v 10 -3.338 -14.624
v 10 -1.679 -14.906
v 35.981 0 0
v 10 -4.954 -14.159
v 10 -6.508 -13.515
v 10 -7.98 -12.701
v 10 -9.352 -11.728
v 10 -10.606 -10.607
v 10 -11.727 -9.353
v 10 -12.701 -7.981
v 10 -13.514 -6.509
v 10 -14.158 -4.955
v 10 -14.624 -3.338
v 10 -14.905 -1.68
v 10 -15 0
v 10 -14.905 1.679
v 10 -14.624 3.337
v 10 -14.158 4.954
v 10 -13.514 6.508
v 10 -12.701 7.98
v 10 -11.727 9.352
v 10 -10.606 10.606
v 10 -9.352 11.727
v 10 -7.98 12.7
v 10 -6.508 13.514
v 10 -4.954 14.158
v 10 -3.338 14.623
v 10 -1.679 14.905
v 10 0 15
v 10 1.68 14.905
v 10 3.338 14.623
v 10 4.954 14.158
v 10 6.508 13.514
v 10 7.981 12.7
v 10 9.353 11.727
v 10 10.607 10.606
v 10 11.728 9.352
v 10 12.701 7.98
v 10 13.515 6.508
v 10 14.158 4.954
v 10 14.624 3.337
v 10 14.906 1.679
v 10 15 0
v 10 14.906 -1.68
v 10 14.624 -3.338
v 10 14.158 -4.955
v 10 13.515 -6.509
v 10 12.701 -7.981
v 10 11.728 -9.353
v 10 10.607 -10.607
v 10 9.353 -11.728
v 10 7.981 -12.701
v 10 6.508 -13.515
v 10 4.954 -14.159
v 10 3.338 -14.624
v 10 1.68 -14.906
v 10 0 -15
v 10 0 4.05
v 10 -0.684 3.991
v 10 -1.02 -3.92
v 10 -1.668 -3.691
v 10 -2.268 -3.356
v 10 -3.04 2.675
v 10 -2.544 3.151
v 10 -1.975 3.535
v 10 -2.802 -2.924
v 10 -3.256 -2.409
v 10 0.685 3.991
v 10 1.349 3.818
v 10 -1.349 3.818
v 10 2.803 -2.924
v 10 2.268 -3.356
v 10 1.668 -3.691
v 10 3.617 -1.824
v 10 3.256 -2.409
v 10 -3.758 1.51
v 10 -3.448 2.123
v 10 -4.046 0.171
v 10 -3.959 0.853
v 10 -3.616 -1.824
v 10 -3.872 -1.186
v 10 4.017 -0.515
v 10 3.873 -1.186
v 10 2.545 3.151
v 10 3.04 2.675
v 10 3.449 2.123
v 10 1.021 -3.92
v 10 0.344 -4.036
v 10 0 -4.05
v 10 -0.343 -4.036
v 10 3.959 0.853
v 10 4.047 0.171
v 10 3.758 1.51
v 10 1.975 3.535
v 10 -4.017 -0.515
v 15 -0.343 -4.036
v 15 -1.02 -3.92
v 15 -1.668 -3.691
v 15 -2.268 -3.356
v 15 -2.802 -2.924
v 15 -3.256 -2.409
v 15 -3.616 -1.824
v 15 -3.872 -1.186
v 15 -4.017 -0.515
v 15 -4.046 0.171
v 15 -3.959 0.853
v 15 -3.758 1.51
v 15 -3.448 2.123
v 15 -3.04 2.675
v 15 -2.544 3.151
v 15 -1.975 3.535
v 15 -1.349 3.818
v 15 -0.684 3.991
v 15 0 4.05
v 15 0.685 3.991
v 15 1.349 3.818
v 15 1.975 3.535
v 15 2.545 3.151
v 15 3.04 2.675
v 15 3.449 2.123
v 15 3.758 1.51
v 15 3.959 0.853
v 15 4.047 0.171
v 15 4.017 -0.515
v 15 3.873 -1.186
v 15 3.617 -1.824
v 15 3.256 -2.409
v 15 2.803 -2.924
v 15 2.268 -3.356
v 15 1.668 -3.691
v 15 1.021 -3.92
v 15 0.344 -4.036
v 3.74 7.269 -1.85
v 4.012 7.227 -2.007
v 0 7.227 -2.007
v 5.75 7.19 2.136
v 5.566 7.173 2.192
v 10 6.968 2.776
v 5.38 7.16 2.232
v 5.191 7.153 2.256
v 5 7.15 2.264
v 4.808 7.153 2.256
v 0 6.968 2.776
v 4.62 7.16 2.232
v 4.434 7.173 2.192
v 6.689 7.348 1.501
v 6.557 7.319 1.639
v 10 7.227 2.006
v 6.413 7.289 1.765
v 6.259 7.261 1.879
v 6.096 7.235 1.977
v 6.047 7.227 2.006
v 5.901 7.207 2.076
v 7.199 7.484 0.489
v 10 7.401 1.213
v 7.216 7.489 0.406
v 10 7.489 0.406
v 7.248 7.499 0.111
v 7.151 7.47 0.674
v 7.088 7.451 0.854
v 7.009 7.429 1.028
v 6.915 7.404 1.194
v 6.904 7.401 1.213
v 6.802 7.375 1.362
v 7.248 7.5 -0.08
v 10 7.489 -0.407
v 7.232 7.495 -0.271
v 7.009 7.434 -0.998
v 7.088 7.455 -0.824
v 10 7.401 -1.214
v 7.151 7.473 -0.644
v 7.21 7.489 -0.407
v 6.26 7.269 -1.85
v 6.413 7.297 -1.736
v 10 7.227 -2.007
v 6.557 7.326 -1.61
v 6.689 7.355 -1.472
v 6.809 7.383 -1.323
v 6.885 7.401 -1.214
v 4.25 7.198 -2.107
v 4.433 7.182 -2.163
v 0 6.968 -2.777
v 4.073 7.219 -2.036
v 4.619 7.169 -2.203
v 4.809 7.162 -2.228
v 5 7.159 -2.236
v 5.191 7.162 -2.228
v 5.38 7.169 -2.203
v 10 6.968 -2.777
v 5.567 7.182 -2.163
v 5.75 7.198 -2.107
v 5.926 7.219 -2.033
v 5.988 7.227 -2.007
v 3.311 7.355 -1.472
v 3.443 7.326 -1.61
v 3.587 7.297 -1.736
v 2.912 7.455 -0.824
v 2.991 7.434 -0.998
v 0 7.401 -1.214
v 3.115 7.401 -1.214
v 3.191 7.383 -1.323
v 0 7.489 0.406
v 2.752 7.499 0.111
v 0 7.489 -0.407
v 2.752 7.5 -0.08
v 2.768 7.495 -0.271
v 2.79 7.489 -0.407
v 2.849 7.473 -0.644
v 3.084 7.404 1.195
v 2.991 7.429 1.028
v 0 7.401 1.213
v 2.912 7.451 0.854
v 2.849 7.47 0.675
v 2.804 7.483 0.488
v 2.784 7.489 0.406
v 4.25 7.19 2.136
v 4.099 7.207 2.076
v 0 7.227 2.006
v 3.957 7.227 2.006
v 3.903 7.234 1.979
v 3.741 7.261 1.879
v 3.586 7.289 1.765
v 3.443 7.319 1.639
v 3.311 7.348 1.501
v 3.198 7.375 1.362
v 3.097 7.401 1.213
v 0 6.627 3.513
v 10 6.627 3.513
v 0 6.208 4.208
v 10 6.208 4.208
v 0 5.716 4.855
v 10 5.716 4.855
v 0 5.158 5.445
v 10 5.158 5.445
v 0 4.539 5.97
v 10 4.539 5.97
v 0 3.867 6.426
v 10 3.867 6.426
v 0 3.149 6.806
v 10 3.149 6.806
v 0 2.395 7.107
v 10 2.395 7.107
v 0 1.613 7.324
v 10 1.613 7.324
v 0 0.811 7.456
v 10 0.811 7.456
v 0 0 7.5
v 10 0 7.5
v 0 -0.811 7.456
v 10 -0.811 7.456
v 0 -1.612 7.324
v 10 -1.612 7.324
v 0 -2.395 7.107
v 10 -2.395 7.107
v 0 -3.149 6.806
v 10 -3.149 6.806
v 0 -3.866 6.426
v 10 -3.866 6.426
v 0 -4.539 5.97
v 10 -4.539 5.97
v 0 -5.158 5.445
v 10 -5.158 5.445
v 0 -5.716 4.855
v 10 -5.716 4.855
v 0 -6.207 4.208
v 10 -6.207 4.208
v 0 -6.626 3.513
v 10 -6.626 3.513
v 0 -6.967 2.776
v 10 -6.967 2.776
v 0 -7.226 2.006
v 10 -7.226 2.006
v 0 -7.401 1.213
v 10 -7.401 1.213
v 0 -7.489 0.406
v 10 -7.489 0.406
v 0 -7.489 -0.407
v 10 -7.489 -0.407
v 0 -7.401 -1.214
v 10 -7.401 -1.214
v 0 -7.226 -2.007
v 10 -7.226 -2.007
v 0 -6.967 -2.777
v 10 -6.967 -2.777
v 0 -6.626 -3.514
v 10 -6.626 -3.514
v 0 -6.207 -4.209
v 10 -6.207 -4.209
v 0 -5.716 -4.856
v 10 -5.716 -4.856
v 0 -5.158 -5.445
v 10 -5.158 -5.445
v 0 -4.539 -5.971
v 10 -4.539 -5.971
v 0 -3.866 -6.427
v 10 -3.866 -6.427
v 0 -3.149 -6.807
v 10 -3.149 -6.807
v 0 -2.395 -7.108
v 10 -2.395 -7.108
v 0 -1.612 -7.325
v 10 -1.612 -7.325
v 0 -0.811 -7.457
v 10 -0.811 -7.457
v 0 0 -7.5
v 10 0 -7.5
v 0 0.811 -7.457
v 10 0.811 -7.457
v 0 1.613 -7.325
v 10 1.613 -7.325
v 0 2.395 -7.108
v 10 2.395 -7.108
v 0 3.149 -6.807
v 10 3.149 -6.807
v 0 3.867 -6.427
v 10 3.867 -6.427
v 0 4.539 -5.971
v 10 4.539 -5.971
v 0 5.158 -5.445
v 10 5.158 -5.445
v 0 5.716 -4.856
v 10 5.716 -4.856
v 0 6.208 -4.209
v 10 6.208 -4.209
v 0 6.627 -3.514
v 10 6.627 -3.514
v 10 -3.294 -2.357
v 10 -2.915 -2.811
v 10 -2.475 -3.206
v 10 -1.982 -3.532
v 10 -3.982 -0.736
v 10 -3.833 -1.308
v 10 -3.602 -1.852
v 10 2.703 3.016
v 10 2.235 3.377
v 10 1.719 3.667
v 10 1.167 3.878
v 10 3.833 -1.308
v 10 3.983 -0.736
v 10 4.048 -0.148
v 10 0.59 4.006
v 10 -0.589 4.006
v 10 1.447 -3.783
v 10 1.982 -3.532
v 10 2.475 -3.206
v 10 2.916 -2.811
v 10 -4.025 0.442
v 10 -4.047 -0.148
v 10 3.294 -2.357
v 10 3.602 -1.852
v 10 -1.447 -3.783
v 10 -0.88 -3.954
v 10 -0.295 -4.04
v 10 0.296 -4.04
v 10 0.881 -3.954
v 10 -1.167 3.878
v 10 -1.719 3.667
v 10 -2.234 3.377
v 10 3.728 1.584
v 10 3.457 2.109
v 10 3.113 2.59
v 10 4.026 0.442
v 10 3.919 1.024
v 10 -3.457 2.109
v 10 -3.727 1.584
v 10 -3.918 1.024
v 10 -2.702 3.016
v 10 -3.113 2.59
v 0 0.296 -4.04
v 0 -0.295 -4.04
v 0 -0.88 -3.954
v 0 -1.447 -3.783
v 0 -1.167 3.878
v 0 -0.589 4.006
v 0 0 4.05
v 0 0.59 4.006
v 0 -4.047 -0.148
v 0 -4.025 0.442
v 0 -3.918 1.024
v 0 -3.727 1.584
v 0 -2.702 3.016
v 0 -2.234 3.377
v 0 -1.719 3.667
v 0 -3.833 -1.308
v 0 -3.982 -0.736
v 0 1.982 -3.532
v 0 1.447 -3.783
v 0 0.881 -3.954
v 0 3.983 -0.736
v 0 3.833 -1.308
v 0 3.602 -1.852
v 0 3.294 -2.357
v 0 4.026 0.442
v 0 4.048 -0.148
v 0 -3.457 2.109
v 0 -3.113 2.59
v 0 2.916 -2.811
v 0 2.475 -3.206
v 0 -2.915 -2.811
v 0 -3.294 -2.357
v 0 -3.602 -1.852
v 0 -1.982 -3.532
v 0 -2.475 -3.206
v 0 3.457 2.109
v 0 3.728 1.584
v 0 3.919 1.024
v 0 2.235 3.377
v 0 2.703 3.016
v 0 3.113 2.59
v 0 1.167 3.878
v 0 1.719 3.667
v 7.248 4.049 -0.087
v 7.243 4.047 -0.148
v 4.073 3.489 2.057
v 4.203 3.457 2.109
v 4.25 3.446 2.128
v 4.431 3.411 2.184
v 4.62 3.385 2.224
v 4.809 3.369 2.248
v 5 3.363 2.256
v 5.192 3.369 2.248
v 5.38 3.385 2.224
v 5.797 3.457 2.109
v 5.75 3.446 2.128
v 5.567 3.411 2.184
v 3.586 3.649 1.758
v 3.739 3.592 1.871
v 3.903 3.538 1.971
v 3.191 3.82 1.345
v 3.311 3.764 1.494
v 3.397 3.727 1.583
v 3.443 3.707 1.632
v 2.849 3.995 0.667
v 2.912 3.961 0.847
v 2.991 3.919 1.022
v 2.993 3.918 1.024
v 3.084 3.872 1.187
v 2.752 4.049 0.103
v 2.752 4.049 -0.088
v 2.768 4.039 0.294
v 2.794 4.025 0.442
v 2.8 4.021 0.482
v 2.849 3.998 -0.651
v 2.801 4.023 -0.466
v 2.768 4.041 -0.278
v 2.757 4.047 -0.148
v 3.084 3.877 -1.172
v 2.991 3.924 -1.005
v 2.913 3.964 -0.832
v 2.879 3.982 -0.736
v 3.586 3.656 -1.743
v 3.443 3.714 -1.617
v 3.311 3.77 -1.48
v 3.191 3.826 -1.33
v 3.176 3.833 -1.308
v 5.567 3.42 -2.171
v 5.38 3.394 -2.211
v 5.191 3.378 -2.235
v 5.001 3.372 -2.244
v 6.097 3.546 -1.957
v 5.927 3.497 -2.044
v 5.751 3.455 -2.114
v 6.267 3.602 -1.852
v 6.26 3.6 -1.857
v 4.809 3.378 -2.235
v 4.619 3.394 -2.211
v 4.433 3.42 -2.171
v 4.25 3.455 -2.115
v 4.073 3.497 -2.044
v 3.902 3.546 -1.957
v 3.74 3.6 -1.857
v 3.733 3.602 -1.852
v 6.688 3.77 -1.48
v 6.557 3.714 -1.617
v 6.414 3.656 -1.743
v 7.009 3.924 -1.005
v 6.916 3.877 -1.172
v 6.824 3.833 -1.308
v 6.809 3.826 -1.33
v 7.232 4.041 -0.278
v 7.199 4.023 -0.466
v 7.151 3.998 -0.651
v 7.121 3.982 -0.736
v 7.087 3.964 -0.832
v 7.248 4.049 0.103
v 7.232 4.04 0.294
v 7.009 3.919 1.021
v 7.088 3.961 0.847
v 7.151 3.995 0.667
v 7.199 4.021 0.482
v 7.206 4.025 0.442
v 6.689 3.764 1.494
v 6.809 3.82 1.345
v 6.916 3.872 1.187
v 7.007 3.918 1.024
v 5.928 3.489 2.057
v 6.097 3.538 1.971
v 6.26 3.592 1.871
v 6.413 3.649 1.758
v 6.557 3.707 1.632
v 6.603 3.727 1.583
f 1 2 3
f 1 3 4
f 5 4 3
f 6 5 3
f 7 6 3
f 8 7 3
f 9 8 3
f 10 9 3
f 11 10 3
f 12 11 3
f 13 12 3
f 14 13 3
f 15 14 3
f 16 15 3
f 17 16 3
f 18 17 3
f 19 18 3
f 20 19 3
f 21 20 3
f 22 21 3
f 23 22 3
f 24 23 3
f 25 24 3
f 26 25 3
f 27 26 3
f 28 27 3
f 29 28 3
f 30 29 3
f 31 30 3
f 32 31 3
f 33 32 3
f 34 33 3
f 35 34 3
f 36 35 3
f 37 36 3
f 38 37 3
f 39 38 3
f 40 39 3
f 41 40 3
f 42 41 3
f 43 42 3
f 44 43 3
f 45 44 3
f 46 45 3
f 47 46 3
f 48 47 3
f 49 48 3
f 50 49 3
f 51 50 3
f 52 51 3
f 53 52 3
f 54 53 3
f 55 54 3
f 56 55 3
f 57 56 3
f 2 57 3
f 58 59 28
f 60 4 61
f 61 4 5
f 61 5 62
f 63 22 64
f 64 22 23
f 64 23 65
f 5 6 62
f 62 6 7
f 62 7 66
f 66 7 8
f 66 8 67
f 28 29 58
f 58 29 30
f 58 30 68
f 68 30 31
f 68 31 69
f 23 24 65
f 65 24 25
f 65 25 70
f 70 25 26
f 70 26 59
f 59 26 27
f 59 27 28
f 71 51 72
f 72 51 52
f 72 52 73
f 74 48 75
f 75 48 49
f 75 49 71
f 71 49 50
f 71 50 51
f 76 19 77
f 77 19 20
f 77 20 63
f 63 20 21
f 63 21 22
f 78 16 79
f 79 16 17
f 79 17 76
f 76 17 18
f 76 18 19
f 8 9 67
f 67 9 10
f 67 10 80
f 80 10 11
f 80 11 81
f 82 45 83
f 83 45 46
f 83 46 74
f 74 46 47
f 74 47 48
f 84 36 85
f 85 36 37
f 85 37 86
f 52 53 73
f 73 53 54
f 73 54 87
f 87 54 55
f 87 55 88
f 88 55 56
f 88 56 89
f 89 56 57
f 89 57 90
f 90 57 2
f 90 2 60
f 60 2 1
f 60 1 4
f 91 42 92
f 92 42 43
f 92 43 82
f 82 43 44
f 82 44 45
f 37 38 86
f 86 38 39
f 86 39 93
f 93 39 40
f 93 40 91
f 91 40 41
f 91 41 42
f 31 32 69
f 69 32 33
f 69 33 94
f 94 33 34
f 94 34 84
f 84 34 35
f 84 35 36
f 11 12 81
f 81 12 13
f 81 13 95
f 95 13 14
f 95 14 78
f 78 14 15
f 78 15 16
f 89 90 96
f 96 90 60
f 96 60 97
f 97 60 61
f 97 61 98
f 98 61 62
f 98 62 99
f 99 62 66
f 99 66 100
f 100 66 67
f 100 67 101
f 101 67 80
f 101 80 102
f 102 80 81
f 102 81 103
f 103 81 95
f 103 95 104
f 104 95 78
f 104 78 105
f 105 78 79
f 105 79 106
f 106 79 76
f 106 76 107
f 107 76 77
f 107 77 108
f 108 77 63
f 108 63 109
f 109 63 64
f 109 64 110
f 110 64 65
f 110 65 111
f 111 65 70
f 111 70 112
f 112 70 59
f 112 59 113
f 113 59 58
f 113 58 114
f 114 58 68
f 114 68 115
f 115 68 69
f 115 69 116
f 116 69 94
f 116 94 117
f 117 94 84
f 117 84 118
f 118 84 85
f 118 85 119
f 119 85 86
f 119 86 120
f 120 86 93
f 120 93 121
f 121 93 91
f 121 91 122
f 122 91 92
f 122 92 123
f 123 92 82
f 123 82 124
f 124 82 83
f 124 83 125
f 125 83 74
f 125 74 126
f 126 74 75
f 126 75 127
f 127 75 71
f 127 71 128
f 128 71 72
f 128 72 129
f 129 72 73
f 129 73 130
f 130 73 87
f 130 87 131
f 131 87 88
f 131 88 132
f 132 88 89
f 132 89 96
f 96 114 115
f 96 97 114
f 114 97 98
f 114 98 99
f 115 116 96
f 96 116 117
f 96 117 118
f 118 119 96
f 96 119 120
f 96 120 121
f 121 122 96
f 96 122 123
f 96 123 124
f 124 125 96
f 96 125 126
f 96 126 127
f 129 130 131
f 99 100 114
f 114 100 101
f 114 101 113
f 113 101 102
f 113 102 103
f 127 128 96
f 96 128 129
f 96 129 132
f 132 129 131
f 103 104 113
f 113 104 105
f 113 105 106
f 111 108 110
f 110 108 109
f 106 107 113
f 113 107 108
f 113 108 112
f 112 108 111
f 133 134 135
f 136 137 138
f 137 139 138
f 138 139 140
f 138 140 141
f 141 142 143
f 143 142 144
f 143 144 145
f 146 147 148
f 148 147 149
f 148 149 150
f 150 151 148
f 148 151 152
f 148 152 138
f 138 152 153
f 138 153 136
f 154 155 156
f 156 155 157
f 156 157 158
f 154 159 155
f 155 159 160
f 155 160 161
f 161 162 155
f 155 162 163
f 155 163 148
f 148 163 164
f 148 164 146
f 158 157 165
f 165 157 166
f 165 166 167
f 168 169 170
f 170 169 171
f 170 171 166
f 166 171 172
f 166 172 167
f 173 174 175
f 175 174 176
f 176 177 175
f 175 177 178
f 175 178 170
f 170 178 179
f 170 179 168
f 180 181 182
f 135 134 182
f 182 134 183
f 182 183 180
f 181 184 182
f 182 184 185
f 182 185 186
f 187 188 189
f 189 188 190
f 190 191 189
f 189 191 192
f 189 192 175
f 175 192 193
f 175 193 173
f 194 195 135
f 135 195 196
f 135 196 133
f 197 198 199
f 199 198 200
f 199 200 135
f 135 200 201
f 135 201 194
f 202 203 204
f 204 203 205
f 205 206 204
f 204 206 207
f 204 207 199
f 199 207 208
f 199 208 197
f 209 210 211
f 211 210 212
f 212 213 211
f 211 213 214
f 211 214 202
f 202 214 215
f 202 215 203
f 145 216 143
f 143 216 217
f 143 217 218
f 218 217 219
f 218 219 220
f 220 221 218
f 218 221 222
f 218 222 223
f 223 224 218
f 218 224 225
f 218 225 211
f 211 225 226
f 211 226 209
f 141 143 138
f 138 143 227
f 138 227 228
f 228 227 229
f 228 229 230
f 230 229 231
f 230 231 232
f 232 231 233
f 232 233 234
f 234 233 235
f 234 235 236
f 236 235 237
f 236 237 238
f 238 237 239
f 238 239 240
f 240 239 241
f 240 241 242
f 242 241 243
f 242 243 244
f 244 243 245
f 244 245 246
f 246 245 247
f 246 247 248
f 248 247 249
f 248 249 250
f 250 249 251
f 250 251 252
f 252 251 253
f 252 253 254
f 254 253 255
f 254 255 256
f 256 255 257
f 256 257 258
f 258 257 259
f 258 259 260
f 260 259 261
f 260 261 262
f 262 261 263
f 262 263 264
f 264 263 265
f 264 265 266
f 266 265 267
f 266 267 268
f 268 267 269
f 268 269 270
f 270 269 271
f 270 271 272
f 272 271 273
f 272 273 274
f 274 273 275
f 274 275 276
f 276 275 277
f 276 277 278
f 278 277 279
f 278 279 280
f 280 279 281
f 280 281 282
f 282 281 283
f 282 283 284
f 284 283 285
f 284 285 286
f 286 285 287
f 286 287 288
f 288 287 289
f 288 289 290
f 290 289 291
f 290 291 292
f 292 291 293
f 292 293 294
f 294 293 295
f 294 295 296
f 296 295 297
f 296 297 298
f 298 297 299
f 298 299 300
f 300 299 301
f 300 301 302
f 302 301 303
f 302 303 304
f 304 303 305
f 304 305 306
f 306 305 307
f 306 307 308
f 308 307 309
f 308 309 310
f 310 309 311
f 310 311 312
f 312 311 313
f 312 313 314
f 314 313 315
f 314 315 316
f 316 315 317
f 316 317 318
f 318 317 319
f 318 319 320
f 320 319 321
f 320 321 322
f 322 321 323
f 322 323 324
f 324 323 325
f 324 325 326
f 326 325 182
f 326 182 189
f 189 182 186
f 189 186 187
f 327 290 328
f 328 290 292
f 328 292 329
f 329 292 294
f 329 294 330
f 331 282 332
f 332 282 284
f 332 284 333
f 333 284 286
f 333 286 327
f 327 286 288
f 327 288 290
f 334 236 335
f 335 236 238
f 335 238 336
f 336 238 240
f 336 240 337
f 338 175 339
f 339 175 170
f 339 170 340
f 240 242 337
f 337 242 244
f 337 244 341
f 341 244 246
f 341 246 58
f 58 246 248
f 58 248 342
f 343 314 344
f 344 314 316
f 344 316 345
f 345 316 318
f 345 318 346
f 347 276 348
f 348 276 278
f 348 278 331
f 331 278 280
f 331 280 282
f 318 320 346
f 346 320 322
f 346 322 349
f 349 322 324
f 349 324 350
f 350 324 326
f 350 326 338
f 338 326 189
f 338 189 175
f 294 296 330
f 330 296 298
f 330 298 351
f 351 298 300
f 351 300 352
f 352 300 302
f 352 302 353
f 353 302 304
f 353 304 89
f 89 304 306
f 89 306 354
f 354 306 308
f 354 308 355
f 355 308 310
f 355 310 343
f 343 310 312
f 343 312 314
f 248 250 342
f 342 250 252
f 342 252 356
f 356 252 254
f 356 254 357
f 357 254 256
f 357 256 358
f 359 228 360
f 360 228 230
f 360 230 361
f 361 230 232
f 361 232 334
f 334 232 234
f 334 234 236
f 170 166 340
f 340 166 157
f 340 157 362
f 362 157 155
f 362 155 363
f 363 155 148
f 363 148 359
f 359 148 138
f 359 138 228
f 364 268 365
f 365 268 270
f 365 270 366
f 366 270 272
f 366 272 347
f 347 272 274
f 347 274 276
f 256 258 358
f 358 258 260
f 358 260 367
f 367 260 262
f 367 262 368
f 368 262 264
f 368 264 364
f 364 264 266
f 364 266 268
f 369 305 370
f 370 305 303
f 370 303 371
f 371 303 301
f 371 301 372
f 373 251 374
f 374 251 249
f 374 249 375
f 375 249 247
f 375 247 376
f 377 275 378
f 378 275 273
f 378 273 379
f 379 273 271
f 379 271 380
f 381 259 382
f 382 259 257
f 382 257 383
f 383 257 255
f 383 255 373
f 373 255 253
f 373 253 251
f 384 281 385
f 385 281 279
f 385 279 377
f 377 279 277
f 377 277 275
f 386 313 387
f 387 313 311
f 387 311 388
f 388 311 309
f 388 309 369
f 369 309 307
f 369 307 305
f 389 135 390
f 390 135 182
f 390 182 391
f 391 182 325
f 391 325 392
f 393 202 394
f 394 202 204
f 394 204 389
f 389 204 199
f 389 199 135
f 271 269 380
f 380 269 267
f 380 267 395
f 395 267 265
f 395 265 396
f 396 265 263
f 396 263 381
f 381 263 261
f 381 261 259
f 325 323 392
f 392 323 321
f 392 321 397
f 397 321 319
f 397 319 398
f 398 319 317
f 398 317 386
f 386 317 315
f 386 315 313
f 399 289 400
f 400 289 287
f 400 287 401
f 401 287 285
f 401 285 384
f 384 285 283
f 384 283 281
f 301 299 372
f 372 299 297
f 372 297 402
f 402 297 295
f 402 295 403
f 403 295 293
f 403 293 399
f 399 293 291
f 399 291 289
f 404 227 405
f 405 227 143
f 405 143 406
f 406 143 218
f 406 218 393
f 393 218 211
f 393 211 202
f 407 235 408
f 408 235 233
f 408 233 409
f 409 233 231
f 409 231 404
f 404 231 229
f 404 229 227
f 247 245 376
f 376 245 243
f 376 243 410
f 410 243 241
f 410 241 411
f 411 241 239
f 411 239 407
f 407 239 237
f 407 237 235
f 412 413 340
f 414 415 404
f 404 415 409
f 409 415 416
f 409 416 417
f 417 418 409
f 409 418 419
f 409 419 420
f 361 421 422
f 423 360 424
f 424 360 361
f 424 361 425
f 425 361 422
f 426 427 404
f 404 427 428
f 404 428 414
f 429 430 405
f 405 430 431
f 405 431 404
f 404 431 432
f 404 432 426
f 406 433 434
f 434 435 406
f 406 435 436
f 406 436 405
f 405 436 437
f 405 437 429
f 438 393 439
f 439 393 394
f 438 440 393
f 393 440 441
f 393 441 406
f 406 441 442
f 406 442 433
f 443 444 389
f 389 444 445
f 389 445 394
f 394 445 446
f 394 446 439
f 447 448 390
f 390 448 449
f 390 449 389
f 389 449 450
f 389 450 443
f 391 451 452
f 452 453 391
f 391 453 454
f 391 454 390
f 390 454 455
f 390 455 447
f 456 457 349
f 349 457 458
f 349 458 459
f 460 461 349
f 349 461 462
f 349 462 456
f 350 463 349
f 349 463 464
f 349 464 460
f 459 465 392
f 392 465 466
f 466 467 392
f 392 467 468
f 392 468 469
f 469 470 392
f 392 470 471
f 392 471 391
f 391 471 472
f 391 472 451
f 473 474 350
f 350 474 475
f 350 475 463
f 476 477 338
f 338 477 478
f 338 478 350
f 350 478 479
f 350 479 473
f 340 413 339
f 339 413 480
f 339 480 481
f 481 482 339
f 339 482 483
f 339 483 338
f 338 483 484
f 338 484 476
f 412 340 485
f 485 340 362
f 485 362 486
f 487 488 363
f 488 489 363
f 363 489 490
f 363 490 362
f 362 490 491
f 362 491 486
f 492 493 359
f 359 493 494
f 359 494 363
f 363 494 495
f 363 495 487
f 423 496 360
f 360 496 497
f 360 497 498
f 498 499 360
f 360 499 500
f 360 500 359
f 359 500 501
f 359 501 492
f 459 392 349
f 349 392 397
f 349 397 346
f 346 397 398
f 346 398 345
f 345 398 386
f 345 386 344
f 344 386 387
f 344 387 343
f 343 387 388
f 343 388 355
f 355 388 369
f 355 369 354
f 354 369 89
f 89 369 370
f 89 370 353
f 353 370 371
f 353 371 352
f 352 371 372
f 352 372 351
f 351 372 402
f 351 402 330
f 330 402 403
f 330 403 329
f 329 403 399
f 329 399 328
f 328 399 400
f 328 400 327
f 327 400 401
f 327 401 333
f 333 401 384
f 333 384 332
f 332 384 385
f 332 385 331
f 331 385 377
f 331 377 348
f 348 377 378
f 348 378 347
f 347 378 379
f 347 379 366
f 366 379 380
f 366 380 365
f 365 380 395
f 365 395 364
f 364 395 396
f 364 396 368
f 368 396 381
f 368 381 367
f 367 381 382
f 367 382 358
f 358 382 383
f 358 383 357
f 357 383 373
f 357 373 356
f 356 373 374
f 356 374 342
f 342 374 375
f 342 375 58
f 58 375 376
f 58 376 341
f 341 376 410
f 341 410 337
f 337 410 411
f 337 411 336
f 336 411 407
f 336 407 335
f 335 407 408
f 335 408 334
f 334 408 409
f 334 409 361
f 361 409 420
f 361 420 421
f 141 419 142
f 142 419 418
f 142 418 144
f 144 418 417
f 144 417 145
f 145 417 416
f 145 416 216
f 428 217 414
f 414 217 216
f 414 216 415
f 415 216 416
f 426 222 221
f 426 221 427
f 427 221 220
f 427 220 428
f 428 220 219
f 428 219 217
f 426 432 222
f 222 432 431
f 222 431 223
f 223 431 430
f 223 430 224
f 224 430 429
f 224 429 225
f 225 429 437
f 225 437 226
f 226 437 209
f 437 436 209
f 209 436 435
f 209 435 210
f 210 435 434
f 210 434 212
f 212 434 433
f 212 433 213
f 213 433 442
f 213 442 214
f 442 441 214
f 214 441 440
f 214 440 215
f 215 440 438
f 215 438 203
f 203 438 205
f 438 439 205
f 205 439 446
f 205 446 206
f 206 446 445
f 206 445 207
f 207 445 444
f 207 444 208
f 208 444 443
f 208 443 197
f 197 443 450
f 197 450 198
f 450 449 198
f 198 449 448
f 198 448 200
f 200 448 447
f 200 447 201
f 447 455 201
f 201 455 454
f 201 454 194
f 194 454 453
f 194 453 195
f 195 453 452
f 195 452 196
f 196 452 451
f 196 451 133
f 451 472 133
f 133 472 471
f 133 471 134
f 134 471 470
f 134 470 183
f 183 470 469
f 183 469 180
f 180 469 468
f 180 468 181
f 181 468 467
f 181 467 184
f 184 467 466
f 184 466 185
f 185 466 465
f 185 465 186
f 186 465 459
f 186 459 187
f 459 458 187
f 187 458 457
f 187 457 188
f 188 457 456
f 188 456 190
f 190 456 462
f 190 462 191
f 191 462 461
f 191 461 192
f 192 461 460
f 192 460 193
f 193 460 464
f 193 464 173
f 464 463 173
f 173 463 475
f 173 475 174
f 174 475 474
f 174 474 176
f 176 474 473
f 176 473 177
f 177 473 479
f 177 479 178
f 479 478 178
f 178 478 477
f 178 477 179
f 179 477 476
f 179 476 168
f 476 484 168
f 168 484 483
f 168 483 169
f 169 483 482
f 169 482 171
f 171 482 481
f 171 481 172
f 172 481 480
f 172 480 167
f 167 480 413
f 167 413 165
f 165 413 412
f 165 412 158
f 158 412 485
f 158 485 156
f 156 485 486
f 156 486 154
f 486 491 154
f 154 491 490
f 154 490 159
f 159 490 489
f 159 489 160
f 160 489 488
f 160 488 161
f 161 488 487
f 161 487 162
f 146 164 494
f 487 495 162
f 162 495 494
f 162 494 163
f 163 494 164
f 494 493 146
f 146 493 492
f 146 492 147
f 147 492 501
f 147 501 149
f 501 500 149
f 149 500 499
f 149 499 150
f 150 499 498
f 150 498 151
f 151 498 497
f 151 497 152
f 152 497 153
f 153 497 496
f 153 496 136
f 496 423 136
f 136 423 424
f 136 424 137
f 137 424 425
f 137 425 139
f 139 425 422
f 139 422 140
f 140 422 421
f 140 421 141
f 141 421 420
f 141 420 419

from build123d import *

# Parameters (mm, degrees)
CROQUIS1_R              = 7.5
SALIENTE_EXTRUIR1_DEPTH = 10
CROQUIS5_R              = 4.05
CORTAR_EXTRUIR1_DEPTH   = 15
CROQUIS9_W              = 2.2479
CROQUIS9_H              = 7.5


with BuildPart() as part:
    # Croquis1 → Saliente-Extruir1 (new body)
    with BuildSketch(Plane(origin=(0, 0, 0), x_dir=(0, 0, -1), z_dir=(1, 0, 0))):
        Circle(CROQUIS1_R)
    extrude(amount=SALIENTE_EXTRUIR1_DEPTH)


with BuildPart() as body_2:
    # Saliente-Extruir2 cone 1 section (through the dimple's axis) → Saliente-Extruir2 (revolve)
    with BuildSketch(Plane(origin=(10, 0, 0), x_dir=(0, 0, 1), z_dir=(0, 1, 0))):
        Polygon((0, 0), (15, 0), (0, 25.980762114), align=None)
    revolve(axis=Axis((10, 0, 0), (1, 0, 0)))


with BuildPart() as cortar_extruir1_tool:
    # Croquis5 → Cortar-Extruir1 (new body)
    with BuildSketch(Plane.ZY):
        Circle(CROQUIS5_R)
    extrude(amount=-CORTAR_EXTRUIR1_DEPTH)


with BuildPart() as part_1:
    add(part.part)

    # Cortar-Extruir1: cut by cortar_extruir1_tool
    add(cortar_extruir1_tool.part, mode=Mode.SUBTRACT)

    # Croquis9 → Taladro de margen para #81 (revolve, cut)
    with BuildSketch(Plane(origin=(4.999975966, 7.499983977, 0.015502848), x_dir=(0, -0.002067046378874128, 0.999997863657352), z_dir=(1, 0, 0))):
        with Locations((1.12395, 3.75)):
            Rectangle(CROQUIS9_W, CROQUIS9_H)
    revolve(axis=Axis((4.999975966, 13.849970412, 0.028628592), (0, -0.9999978636573518, -0.0020670463788741277)), mode=Mode.SUBTRACT)


with BuildPart() as body_2_1:
    add(body_2.part)

    # Cortar-Extruir1: cut by cortar_extruir1_tool
    add(cortar_extruir1_tool.part, mode=Mode.SUBTRACT)


solid = Compound([part_1.part, body_2_1.part])
